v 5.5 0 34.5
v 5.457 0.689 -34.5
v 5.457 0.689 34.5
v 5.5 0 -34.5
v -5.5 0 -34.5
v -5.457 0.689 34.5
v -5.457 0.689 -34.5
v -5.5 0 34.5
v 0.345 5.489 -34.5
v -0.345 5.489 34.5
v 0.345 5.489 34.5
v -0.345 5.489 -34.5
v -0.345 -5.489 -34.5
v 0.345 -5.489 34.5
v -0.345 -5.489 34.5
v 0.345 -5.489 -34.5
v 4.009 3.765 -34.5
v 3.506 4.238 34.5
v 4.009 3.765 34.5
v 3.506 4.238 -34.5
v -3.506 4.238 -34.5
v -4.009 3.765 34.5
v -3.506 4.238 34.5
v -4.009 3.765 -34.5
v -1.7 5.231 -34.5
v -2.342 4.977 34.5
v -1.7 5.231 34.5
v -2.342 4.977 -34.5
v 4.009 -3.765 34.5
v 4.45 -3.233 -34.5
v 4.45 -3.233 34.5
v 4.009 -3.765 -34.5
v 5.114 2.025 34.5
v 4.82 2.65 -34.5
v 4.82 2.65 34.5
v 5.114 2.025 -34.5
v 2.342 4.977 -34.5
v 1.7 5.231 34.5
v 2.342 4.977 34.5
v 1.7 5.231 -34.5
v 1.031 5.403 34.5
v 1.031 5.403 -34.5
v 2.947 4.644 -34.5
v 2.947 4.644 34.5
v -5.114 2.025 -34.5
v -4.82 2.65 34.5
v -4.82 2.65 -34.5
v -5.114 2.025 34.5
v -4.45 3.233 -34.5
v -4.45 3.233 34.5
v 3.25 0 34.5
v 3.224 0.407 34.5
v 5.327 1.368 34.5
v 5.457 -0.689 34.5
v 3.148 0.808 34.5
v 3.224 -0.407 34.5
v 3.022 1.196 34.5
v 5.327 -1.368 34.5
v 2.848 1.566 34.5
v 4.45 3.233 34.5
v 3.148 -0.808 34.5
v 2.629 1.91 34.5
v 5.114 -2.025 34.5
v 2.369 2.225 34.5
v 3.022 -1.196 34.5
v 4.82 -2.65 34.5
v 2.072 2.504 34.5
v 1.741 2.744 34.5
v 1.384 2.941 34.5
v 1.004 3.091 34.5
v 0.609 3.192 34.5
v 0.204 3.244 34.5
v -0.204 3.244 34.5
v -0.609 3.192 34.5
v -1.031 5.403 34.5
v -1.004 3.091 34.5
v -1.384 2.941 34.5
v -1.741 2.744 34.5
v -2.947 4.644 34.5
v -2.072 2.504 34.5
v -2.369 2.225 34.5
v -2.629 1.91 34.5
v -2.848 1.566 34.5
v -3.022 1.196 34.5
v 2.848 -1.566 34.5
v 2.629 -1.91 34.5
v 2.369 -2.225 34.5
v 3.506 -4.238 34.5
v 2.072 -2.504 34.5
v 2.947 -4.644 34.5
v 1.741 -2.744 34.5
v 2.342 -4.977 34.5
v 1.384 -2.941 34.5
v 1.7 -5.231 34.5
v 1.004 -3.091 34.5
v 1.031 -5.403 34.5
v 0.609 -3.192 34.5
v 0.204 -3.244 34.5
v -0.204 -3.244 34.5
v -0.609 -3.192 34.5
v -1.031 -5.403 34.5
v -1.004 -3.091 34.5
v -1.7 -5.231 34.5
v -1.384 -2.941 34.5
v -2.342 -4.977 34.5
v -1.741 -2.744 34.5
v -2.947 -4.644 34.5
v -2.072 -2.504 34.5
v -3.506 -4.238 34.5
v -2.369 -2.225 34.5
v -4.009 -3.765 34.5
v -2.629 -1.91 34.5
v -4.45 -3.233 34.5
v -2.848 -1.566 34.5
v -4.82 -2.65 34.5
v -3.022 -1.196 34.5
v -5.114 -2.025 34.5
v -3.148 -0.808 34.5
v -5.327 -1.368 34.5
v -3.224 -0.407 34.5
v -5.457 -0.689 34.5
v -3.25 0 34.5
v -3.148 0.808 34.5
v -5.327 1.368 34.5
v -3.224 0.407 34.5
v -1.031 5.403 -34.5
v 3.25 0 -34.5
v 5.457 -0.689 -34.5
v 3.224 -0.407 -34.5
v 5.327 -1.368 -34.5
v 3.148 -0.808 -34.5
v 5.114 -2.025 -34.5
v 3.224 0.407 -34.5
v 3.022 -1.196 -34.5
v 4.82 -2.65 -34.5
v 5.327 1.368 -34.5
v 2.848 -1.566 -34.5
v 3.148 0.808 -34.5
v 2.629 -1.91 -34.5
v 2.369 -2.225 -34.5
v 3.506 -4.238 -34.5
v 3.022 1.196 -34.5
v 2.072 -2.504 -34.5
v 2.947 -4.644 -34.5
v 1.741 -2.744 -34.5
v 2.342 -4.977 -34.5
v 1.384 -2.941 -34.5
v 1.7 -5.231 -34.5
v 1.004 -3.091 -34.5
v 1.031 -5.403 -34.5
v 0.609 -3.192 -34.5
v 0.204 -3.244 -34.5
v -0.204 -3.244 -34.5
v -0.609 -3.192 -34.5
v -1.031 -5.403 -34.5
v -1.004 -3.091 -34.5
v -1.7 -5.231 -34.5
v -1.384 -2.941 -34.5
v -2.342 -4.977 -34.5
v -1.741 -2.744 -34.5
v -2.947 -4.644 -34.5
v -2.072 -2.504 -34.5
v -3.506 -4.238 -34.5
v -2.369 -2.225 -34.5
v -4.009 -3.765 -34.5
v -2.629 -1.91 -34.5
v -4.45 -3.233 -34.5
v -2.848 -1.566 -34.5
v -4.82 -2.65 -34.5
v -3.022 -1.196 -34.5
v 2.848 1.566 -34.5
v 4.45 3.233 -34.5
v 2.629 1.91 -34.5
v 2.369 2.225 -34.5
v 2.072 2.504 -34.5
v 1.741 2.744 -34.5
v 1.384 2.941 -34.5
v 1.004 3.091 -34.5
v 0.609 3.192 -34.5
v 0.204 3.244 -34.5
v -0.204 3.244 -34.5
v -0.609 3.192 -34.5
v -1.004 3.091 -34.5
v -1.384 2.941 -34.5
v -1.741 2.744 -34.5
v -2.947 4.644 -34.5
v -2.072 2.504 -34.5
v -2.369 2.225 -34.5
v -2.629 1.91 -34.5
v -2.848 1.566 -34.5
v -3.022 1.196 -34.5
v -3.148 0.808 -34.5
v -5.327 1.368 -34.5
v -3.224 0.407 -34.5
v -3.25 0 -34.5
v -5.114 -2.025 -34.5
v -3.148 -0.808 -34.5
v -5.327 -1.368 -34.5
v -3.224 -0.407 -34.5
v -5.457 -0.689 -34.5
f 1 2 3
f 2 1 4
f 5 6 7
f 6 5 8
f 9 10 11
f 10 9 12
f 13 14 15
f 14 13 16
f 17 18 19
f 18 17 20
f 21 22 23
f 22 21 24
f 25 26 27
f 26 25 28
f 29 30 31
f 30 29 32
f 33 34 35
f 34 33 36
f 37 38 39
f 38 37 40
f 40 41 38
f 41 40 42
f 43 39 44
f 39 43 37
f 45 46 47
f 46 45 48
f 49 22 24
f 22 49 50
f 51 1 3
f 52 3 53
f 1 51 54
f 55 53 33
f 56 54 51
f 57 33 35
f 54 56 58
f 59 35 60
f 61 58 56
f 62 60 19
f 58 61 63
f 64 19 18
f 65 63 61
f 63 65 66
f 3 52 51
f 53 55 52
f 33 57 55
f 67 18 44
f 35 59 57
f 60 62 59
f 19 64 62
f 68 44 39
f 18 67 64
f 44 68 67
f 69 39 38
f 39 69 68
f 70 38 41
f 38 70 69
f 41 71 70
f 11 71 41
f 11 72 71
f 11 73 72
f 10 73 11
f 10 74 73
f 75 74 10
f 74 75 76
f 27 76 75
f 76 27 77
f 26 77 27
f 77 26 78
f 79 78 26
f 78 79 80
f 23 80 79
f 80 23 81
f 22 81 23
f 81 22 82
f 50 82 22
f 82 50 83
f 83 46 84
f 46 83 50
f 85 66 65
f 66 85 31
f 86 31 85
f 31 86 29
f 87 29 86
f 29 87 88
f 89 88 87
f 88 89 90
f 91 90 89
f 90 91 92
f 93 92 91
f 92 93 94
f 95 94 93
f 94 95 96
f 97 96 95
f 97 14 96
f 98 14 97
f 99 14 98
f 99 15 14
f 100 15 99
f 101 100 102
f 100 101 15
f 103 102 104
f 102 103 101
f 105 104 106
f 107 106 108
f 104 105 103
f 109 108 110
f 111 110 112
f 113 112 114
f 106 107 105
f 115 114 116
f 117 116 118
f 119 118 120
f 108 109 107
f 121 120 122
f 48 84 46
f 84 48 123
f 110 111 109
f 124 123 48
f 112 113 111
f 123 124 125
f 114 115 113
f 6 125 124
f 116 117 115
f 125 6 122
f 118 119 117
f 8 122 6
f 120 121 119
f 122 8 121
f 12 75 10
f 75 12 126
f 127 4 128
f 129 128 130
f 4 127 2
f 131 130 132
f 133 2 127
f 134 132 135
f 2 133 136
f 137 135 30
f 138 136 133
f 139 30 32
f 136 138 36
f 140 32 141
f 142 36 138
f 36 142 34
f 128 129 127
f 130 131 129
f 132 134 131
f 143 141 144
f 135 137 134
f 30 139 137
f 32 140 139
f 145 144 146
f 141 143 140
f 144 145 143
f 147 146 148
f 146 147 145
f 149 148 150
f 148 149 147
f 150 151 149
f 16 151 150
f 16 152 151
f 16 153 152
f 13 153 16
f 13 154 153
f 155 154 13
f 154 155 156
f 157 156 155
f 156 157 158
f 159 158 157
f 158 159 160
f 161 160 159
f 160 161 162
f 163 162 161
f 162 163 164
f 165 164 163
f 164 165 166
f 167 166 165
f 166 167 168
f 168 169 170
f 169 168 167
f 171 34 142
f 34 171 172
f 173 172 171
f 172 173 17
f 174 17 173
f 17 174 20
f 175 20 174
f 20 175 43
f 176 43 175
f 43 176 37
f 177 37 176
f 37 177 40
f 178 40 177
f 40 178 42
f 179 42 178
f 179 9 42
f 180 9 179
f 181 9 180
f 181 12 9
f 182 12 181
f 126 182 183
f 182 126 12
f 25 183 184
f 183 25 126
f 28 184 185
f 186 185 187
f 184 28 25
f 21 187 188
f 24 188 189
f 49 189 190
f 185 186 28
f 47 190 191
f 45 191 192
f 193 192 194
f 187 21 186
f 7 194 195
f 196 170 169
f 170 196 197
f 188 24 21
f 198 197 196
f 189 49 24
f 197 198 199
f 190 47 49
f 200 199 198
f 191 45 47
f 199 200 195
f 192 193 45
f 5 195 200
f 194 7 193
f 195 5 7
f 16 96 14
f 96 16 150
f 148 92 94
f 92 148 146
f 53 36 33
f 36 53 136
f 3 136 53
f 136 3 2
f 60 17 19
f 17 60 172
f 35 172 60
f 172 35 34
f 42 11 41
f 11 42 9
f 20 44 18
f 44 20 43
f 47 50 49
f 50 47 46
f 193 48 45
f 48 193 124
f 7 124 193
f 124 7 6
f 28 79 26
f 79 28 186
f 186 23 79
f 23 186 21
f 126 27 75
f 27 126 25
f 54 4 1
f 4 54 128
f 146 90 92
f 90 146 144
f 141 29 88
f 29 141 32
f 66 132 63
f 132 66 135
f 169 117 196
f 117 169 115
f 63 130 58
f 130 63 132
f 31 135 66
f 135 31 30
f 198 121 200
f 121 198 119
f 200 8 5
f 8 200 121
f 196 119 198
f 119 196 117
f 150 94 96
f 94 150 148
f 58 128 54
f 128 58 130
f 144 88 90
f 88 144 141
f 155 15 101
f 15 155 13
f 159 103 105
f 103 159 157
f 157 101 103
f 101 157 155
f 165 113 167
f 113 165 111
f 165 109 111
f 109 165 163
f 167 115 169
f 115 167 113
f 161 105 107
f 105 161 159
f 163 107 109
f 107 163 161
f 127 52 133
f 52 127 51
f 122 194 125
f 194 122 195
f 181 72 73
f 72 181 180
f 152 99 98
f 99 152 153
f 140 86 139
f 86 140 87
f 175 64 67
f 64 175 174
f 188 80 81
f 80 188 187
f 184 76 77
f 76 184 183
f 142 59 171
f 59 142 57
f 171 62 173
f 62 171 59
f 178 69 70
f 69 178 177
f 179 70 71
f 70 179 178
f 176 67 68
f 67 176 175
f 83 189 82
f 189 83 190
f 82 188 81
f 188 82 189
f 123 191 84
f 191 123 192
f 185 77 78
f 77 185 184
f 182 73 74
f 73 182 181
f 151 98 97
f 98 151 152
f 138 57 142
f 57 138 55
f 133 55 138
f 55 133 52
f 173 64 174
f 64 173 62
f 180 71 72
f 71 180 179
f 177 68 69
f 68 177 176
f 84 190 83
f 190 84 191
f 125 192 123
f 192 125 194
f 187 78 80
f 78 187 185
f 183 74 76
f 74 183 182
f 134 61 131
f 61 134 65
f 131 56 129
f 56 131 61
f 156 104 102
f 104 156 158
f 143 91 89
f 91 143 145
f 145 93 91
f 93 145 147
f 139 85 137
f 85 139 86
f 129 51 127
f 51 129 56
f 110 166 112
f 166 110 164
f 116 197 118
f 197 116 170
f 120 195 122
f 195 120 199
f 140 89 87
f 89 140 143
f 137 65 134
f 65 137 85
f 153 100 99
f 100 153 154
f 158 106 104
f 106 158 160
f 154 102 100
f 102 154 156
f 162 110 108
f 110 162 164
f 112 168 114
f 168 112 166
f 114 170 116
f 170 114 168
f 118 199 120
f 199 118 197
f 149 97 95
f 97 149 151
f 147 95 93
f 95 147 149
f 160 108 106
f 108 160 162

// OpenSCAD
$fn = 50;


difference() {
	union() {
		translate(v = [0, 0, -34.5000000000]) {
			cylinder(h = 69, r = 5.5000000000);
		}
	}
	union() {
		translate(v = [0, 0, -100.0000000000]) {
			cylinder(h = 200, r = 3.2500000000);
		}
	}
}
